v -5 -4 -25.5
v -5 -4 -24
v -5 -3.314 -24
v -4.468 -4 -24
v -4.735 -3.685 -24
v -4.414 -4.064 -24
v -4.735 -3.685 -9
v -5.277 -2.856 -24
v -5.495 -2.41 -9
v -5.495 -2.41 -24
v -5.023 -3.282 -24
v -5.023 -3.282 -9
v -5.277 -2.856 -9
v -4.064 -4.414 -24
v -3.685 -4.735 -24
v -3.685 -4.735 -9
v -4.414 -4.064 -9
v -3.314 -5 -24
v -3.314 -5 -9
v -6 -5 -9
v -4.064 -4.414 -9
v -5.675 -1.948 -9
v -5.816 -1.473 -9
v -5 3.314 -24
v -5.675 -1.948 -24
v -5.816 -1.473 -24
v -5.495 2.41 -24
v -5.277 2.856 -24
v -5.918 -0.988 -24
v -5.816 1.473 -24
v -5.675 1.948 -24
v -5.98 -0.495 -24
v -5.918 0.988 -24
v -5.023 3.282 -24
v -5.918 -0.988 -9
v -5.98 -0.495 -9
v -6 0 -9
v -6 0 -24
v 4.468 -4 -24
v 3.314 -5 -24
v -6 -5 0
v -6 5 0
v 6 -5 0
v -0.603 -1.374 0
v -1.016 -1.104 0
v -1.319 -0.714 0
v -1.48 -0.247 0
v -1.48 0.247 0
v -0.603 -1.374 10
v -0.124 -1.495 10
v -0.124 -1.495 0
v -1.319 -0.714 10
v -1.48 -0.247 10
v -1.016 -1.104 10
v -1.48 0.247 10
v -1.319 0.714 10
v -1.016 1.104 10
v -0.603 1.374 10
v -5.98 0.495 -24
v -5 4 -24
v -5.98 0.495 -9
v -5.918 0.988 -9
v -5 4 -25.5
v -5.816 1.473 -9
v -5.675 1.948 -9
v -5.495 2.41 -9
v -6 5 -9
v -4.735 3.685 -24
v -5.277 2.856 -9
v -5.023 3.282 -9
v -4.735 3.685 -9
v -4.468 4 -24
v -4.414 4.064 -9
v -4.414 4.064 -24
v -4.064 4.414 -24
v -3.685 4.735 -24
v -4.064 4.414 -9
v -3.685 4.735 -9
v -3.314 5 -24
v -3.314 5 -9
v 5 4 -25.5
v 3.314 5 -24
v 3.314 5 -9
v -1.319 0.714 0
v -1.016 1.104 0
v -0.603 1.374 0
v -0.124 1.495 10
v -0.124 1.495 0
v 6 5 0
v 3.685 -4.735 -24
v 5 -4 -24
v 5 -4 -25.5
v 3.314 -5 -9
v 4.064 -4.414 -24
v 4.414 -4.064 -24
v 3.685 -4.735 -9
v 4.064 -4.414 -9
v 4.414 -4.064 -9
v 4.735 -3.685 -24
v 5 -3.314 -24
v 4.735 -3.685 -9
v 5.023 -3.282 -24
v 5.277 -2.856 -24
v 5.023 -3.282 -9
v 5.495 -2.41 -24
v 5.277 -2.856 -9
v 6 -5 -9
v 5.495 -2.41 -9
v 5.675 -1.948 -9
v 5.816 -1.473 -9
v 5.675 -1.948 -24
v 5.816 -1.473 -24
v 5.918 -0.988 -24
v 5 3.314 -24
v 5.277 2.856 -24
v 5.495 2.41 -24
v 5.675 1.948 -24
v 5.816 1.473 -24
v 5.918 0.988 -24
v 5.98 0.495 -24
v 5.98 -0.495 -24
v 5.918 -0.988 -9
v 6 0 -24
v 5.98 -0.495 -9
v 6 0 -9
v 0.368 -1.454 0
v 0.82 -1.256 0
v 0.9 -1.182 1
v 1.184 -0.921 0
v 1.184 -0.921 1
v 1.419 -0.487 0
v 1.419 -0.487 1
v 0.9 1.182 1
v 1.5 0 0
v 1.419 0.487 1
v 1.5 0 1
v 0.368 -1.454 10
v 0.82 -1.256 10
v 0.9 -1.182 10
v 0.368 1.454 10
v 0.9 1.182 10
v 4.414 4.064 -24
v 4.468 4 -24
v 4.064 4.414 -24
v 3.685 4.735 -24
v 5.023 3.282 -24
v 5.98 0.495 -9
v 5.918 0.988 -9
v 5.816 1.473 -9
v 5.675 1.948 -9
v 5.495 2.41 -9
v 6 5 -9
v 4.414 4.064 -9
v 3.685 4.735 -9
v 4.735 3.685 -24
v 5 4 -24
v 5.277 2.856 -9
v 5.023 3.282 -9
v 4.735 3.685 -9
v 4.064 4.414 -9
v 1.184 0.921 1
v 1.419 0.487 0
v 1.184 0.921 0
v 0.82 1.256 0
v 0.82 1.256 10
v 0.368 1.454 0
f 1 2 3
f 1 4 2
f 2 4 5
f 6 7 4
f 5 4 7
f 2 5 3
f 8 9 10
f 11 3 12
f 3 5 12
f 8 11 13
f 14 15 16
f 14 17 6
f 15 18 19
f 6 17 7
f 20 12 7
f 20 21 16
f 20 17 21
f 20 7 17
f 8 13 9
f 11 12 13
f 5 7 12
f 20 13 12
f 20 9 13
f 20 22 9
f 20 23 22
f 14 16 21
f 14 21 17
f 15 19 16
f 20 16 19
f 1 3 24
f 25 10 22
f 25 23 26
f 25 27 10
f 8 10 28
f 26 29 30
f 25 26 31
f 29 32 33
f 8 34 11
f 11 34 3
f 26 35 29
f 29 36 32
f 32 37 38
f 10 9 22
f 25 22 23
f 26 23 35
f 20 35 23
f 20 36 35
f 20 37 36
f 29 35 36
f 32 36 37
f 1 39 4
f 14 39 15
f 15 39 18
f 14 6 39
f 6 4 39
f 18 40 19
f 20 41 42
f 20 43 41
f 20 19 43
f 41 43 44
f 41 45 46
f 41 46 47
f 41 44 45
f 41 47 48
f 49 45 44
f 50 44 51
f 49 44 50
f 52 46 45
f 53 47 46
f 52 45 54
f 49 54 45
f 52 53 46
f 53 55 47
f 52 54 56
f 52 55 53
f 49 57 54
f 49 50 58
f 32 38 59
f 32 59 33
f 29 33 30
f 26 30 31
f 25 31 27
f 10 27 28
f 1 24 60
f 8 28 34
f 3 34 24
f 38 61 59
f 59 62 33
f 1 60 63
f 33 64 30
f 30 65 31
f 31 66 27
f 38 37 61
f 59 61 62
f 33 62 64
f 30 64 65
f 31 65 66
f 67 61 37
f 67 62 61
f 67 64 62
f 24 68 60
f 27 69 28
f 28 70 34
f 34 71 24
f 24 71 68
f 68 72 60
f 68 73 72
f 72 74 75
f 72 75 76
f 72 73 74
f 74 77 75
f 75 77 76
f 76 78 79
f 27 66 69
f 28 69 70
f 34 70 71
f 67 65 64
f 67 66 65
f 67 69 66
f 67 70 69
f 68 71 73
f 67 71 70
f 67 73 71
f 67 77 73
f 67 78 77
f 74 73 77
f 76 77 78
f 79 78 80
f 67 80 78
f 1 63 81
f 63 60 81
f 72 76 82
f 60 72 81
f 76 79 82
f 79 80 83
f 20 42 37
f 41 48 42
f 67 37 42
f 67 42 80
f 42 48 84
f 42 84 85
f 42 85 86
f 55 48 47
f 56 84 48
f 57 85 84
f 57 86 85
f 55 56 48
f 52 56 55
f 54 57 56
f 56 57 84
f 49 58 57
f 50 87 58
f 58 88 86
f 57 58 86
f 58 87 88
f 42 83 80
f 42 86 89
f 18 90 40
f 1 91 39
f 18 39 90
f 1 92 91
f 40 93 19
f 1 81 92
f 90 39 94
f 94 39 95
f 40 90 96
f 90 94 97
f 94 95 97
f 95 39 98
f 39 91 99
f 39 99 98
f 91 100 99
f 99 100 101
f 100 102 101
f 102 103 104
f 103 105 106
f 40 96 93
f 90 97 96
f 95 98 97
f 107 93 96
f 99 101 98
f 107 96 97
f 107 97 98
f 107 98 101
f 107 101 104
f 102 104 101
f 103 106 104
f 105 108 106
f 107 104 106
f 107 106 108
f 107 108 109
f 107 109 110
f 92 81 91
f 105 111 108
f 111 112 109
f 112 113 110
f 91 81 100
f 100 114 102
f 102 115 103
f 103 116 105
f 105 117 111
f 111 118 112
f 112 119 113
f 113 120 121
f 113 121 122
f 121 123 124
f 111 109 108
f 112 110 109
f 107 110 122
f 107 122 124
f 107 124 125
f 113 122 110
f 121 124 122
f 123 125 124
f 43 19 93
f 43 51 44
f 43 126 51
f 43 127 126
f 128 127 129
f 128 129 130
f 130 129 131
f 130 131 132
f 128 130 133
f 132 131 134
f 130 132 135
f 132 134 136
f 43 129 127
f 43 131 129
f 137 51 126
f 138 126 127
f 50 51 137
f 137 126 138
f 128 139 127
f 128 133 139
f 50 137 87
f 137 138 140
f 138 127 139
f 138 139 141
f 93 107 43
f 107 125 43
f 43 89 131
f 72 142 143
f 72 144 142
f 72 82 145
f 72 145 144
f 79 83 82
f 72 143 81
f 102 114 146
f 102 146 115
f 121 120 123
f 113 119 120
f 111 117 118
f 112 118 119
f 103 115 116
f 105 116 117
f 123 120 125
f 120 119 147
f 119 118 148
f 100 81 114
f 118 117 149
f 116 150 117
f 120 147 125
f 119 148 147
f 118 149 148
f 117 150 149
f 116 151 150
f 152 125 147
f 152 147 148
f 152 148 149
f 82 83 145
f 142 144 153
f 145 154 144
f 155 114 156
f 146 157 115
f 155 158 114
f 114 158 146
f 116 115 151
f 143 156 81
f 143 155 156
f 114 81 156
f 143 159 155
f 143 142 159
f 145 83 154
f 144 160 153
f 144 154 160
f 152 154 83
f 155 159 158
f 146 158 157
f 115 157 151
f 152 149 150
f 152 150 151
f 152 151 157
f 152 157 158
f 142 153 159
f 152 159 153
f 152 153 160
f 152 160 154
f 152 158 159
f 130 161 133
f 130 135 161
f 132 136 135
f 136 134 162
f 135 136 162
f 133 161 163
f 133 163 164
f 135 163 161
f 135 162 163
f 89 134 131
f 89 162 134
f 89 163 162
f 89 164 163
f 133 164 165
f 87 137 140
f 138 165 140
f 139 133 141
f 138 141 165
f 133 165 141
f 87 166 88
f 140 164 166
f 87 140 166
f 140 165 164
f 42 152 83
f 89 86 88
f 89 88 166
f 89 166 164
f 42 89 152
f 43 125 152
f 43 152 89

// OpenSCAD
// file: ../lib/lib.scad
// Shared helpers. Include AFTER params.scad (needs TOL, M3_* etc.).
$fa = 4; $fs = 0.5;

module rrect(size, r) {            // 2D rounded rectangle, centred
    r2 = min(r, min(size[0], size[1]) / 2 - 0.001);
    offset(r = r2) square([size[0] - 2 * r2, size[1] - 2 * r2], center = true);
}
module rbox(size, r, center_xy = true) {   // box with rounded vertical edges
    translate(center_xy ? [0, 0, 0] : [size[0] / 2, size[1] / 2, 0])
        linear_extrude(size[2]) rrect([size[0], size[1]], r);
}
module rbox_at(x0, x1, y0, y1, z0, z1, r = 0.01) {
    translate([(x0 + x1) / 2, (y0 + y1) / 2, z0]) rbox([x1 - x0, y1 - y0, z1 - z0], r);
}
module box_at(x0, x1, y0, y1, z0, z1) { translate([x0, y0, z0]) cube([x1 - x0, y1 - y0, z1 - z0]); }

module ring(ro, ri, h) { difference() { cylinder(r = ro, h = h); translate([0, 0, -1]) cylinder(r = ri, h = h + 2); } }
module ring_sector(ro, ri, h, a0, a1) {
    intersection() {
        ring(ro, ri, h);
        linear_extrude(h) polygon(concat([[0, 0]], [for (a = [a0 : (a1 - a0) / 24 : a1]) 2 * ro * [cos(a), sin(a)]]));
    }
}
// teardrop hole along an axis lying horizontal (axis = Y after rotation), printable w/o support
module teardrop2d(d) { union() { circle(d = d); rotate(45) square(d / 2); } }
// vertical heat-set insert hole, opening at z=0 going +z (depth l)
module insert_hole(l = M3_INSERT_L) { translate([0, 0, -EPS]) cylinder(d = M3_INSERT_D, h = l + EPS); }
module m3_clear(l) { translate([0, 0, -EPS]) cylinder(d = M3_CLEAR, h = l + 2 * EPS); }
module m3_csk(l) {  // countersunk clearance from z=0 upward, head at z=0 side
    translate([0, 0, -EPS]) { cylinder(d = M3_CLEAR, h = l + 2 * EPS); cylinder(d1 = 6.4, d2 = M3_CLEAR, h = 1.7); }
}
module card2d() { rrect([CARD_L, CARD_W], CARD_R); }
module card_at(cy, z) { translate([0, cy, z]) linear_extrude(CARD_T) card2d(); }

// ---- gears ----
function _inv(a) = tan(a) - a * PI_ / 180;           // involute function, a in deg
function _invpt(rb, r, ang0, s) = let(al = acos(rb / r), th = ang0 - s * (_inv(al) * 180 / PI_)) [r * cos(th), r * sin(th)];
module involute_gear2d(m, z, pa = 20, clearance = 0.05) {
    rp = m * z / 2; rb = rp * cos(pa); ra = rp + m - clearance; rf = rp - 1.25 * m;
    half = 90 / z + _inv(pa) * 180 / PI_;            // tooth half-angle at base (deg)
    n = 8;
    rs = [for (i = [0 : n]) max(rb, rf) + (ra - max(rb, rf)) * i / n];
    union() {
        circle(r = rf, $fn = z * 4);
        for (k = [0 : z - 1]) rotate(k * 360 / z) polygon(concat(
            [[rf * cos(-half), rf * sin(-half)]],
            [for (r = rs) let(p = _invpt(rb, r, half, 1)) [p[0], -p[1]]],
            [for (i = [n : -1 : 0]) _invpt(rb, rs[i], half, 1)],
            [[rf * cos(half), rf * sin(half)]]));
    }
}
// straight gear rack (2D in XY: teeth along +x, pointing -y, pitch line at y=0)
module gear_rack2d(m, len, back = 3) {
    p = PI_ * m; ad = m; de = 1.25 * m; t = tan(20);
    n = ceil(len / p) + 1;
    intersection() {
        union() {
            translate([0, de]) square([len, back]);
            for (i = [0 : n]) translate([i * p - p / 4, 0]) polygon([
                [-(p / 4 + de * t), de + 0.01], [p / 4 + de * t + 0.01, de + 0.01],
                [p / 4 - ad * t, -ad], [-(p / 4 - ad * t), -ad] ]);
        }
        translate([0, -ad - 1]) square([len, ad + de + back + 2]);
    }
}
// GT2 belt-tooth profile ring (teeth outward), 2D
module gt2_ring2d(n, r_land, ri) {
    union() {
        difference() { circle(r = r_land + 0.01, $fn = n * 2); circle(r = ri, $fn = n * 2); }
        for (k = [0 : n - 1]) rotate(k * 360 / n)
            translate([r_land, 0]) hull() { translate([-0.2, 0]) square([0.2, 1.0], center = true); translate([0.25, 0]) circle(r = 0.5, $fn = 12); }
    }
}
// main file
// Vendor model: N20 micro gearmotor (5 V, ~100 rpm), D-shaft 3 mm. Local: output face z=0, shaft +Z 0..10, body toward -Z.
include <../params.scad>
include <../lib/lib.scad>
module vendor_n20_motor() {
    color([0.85,0.7,0.3]) translate([-6, -5, -9]) cube([12, 10, 9]);
    color([0.75,0.75,0.78]) translate([0, 0, -24]) intersection() { cylinder(d = 12, h = 15); translate([-6, -5, 0]) cube([12, 10, 15]); }
    color([0.2,0.2,0.2]) translate([-5, -4, -25.5]) cube([10, 8, 1.5]);
    color("silver") difference() { cylinder(d = 3, h = 10); translate([0.9, -2, 1]) cube([2, 4, 10]); }
}

vendor_n20_motor();
